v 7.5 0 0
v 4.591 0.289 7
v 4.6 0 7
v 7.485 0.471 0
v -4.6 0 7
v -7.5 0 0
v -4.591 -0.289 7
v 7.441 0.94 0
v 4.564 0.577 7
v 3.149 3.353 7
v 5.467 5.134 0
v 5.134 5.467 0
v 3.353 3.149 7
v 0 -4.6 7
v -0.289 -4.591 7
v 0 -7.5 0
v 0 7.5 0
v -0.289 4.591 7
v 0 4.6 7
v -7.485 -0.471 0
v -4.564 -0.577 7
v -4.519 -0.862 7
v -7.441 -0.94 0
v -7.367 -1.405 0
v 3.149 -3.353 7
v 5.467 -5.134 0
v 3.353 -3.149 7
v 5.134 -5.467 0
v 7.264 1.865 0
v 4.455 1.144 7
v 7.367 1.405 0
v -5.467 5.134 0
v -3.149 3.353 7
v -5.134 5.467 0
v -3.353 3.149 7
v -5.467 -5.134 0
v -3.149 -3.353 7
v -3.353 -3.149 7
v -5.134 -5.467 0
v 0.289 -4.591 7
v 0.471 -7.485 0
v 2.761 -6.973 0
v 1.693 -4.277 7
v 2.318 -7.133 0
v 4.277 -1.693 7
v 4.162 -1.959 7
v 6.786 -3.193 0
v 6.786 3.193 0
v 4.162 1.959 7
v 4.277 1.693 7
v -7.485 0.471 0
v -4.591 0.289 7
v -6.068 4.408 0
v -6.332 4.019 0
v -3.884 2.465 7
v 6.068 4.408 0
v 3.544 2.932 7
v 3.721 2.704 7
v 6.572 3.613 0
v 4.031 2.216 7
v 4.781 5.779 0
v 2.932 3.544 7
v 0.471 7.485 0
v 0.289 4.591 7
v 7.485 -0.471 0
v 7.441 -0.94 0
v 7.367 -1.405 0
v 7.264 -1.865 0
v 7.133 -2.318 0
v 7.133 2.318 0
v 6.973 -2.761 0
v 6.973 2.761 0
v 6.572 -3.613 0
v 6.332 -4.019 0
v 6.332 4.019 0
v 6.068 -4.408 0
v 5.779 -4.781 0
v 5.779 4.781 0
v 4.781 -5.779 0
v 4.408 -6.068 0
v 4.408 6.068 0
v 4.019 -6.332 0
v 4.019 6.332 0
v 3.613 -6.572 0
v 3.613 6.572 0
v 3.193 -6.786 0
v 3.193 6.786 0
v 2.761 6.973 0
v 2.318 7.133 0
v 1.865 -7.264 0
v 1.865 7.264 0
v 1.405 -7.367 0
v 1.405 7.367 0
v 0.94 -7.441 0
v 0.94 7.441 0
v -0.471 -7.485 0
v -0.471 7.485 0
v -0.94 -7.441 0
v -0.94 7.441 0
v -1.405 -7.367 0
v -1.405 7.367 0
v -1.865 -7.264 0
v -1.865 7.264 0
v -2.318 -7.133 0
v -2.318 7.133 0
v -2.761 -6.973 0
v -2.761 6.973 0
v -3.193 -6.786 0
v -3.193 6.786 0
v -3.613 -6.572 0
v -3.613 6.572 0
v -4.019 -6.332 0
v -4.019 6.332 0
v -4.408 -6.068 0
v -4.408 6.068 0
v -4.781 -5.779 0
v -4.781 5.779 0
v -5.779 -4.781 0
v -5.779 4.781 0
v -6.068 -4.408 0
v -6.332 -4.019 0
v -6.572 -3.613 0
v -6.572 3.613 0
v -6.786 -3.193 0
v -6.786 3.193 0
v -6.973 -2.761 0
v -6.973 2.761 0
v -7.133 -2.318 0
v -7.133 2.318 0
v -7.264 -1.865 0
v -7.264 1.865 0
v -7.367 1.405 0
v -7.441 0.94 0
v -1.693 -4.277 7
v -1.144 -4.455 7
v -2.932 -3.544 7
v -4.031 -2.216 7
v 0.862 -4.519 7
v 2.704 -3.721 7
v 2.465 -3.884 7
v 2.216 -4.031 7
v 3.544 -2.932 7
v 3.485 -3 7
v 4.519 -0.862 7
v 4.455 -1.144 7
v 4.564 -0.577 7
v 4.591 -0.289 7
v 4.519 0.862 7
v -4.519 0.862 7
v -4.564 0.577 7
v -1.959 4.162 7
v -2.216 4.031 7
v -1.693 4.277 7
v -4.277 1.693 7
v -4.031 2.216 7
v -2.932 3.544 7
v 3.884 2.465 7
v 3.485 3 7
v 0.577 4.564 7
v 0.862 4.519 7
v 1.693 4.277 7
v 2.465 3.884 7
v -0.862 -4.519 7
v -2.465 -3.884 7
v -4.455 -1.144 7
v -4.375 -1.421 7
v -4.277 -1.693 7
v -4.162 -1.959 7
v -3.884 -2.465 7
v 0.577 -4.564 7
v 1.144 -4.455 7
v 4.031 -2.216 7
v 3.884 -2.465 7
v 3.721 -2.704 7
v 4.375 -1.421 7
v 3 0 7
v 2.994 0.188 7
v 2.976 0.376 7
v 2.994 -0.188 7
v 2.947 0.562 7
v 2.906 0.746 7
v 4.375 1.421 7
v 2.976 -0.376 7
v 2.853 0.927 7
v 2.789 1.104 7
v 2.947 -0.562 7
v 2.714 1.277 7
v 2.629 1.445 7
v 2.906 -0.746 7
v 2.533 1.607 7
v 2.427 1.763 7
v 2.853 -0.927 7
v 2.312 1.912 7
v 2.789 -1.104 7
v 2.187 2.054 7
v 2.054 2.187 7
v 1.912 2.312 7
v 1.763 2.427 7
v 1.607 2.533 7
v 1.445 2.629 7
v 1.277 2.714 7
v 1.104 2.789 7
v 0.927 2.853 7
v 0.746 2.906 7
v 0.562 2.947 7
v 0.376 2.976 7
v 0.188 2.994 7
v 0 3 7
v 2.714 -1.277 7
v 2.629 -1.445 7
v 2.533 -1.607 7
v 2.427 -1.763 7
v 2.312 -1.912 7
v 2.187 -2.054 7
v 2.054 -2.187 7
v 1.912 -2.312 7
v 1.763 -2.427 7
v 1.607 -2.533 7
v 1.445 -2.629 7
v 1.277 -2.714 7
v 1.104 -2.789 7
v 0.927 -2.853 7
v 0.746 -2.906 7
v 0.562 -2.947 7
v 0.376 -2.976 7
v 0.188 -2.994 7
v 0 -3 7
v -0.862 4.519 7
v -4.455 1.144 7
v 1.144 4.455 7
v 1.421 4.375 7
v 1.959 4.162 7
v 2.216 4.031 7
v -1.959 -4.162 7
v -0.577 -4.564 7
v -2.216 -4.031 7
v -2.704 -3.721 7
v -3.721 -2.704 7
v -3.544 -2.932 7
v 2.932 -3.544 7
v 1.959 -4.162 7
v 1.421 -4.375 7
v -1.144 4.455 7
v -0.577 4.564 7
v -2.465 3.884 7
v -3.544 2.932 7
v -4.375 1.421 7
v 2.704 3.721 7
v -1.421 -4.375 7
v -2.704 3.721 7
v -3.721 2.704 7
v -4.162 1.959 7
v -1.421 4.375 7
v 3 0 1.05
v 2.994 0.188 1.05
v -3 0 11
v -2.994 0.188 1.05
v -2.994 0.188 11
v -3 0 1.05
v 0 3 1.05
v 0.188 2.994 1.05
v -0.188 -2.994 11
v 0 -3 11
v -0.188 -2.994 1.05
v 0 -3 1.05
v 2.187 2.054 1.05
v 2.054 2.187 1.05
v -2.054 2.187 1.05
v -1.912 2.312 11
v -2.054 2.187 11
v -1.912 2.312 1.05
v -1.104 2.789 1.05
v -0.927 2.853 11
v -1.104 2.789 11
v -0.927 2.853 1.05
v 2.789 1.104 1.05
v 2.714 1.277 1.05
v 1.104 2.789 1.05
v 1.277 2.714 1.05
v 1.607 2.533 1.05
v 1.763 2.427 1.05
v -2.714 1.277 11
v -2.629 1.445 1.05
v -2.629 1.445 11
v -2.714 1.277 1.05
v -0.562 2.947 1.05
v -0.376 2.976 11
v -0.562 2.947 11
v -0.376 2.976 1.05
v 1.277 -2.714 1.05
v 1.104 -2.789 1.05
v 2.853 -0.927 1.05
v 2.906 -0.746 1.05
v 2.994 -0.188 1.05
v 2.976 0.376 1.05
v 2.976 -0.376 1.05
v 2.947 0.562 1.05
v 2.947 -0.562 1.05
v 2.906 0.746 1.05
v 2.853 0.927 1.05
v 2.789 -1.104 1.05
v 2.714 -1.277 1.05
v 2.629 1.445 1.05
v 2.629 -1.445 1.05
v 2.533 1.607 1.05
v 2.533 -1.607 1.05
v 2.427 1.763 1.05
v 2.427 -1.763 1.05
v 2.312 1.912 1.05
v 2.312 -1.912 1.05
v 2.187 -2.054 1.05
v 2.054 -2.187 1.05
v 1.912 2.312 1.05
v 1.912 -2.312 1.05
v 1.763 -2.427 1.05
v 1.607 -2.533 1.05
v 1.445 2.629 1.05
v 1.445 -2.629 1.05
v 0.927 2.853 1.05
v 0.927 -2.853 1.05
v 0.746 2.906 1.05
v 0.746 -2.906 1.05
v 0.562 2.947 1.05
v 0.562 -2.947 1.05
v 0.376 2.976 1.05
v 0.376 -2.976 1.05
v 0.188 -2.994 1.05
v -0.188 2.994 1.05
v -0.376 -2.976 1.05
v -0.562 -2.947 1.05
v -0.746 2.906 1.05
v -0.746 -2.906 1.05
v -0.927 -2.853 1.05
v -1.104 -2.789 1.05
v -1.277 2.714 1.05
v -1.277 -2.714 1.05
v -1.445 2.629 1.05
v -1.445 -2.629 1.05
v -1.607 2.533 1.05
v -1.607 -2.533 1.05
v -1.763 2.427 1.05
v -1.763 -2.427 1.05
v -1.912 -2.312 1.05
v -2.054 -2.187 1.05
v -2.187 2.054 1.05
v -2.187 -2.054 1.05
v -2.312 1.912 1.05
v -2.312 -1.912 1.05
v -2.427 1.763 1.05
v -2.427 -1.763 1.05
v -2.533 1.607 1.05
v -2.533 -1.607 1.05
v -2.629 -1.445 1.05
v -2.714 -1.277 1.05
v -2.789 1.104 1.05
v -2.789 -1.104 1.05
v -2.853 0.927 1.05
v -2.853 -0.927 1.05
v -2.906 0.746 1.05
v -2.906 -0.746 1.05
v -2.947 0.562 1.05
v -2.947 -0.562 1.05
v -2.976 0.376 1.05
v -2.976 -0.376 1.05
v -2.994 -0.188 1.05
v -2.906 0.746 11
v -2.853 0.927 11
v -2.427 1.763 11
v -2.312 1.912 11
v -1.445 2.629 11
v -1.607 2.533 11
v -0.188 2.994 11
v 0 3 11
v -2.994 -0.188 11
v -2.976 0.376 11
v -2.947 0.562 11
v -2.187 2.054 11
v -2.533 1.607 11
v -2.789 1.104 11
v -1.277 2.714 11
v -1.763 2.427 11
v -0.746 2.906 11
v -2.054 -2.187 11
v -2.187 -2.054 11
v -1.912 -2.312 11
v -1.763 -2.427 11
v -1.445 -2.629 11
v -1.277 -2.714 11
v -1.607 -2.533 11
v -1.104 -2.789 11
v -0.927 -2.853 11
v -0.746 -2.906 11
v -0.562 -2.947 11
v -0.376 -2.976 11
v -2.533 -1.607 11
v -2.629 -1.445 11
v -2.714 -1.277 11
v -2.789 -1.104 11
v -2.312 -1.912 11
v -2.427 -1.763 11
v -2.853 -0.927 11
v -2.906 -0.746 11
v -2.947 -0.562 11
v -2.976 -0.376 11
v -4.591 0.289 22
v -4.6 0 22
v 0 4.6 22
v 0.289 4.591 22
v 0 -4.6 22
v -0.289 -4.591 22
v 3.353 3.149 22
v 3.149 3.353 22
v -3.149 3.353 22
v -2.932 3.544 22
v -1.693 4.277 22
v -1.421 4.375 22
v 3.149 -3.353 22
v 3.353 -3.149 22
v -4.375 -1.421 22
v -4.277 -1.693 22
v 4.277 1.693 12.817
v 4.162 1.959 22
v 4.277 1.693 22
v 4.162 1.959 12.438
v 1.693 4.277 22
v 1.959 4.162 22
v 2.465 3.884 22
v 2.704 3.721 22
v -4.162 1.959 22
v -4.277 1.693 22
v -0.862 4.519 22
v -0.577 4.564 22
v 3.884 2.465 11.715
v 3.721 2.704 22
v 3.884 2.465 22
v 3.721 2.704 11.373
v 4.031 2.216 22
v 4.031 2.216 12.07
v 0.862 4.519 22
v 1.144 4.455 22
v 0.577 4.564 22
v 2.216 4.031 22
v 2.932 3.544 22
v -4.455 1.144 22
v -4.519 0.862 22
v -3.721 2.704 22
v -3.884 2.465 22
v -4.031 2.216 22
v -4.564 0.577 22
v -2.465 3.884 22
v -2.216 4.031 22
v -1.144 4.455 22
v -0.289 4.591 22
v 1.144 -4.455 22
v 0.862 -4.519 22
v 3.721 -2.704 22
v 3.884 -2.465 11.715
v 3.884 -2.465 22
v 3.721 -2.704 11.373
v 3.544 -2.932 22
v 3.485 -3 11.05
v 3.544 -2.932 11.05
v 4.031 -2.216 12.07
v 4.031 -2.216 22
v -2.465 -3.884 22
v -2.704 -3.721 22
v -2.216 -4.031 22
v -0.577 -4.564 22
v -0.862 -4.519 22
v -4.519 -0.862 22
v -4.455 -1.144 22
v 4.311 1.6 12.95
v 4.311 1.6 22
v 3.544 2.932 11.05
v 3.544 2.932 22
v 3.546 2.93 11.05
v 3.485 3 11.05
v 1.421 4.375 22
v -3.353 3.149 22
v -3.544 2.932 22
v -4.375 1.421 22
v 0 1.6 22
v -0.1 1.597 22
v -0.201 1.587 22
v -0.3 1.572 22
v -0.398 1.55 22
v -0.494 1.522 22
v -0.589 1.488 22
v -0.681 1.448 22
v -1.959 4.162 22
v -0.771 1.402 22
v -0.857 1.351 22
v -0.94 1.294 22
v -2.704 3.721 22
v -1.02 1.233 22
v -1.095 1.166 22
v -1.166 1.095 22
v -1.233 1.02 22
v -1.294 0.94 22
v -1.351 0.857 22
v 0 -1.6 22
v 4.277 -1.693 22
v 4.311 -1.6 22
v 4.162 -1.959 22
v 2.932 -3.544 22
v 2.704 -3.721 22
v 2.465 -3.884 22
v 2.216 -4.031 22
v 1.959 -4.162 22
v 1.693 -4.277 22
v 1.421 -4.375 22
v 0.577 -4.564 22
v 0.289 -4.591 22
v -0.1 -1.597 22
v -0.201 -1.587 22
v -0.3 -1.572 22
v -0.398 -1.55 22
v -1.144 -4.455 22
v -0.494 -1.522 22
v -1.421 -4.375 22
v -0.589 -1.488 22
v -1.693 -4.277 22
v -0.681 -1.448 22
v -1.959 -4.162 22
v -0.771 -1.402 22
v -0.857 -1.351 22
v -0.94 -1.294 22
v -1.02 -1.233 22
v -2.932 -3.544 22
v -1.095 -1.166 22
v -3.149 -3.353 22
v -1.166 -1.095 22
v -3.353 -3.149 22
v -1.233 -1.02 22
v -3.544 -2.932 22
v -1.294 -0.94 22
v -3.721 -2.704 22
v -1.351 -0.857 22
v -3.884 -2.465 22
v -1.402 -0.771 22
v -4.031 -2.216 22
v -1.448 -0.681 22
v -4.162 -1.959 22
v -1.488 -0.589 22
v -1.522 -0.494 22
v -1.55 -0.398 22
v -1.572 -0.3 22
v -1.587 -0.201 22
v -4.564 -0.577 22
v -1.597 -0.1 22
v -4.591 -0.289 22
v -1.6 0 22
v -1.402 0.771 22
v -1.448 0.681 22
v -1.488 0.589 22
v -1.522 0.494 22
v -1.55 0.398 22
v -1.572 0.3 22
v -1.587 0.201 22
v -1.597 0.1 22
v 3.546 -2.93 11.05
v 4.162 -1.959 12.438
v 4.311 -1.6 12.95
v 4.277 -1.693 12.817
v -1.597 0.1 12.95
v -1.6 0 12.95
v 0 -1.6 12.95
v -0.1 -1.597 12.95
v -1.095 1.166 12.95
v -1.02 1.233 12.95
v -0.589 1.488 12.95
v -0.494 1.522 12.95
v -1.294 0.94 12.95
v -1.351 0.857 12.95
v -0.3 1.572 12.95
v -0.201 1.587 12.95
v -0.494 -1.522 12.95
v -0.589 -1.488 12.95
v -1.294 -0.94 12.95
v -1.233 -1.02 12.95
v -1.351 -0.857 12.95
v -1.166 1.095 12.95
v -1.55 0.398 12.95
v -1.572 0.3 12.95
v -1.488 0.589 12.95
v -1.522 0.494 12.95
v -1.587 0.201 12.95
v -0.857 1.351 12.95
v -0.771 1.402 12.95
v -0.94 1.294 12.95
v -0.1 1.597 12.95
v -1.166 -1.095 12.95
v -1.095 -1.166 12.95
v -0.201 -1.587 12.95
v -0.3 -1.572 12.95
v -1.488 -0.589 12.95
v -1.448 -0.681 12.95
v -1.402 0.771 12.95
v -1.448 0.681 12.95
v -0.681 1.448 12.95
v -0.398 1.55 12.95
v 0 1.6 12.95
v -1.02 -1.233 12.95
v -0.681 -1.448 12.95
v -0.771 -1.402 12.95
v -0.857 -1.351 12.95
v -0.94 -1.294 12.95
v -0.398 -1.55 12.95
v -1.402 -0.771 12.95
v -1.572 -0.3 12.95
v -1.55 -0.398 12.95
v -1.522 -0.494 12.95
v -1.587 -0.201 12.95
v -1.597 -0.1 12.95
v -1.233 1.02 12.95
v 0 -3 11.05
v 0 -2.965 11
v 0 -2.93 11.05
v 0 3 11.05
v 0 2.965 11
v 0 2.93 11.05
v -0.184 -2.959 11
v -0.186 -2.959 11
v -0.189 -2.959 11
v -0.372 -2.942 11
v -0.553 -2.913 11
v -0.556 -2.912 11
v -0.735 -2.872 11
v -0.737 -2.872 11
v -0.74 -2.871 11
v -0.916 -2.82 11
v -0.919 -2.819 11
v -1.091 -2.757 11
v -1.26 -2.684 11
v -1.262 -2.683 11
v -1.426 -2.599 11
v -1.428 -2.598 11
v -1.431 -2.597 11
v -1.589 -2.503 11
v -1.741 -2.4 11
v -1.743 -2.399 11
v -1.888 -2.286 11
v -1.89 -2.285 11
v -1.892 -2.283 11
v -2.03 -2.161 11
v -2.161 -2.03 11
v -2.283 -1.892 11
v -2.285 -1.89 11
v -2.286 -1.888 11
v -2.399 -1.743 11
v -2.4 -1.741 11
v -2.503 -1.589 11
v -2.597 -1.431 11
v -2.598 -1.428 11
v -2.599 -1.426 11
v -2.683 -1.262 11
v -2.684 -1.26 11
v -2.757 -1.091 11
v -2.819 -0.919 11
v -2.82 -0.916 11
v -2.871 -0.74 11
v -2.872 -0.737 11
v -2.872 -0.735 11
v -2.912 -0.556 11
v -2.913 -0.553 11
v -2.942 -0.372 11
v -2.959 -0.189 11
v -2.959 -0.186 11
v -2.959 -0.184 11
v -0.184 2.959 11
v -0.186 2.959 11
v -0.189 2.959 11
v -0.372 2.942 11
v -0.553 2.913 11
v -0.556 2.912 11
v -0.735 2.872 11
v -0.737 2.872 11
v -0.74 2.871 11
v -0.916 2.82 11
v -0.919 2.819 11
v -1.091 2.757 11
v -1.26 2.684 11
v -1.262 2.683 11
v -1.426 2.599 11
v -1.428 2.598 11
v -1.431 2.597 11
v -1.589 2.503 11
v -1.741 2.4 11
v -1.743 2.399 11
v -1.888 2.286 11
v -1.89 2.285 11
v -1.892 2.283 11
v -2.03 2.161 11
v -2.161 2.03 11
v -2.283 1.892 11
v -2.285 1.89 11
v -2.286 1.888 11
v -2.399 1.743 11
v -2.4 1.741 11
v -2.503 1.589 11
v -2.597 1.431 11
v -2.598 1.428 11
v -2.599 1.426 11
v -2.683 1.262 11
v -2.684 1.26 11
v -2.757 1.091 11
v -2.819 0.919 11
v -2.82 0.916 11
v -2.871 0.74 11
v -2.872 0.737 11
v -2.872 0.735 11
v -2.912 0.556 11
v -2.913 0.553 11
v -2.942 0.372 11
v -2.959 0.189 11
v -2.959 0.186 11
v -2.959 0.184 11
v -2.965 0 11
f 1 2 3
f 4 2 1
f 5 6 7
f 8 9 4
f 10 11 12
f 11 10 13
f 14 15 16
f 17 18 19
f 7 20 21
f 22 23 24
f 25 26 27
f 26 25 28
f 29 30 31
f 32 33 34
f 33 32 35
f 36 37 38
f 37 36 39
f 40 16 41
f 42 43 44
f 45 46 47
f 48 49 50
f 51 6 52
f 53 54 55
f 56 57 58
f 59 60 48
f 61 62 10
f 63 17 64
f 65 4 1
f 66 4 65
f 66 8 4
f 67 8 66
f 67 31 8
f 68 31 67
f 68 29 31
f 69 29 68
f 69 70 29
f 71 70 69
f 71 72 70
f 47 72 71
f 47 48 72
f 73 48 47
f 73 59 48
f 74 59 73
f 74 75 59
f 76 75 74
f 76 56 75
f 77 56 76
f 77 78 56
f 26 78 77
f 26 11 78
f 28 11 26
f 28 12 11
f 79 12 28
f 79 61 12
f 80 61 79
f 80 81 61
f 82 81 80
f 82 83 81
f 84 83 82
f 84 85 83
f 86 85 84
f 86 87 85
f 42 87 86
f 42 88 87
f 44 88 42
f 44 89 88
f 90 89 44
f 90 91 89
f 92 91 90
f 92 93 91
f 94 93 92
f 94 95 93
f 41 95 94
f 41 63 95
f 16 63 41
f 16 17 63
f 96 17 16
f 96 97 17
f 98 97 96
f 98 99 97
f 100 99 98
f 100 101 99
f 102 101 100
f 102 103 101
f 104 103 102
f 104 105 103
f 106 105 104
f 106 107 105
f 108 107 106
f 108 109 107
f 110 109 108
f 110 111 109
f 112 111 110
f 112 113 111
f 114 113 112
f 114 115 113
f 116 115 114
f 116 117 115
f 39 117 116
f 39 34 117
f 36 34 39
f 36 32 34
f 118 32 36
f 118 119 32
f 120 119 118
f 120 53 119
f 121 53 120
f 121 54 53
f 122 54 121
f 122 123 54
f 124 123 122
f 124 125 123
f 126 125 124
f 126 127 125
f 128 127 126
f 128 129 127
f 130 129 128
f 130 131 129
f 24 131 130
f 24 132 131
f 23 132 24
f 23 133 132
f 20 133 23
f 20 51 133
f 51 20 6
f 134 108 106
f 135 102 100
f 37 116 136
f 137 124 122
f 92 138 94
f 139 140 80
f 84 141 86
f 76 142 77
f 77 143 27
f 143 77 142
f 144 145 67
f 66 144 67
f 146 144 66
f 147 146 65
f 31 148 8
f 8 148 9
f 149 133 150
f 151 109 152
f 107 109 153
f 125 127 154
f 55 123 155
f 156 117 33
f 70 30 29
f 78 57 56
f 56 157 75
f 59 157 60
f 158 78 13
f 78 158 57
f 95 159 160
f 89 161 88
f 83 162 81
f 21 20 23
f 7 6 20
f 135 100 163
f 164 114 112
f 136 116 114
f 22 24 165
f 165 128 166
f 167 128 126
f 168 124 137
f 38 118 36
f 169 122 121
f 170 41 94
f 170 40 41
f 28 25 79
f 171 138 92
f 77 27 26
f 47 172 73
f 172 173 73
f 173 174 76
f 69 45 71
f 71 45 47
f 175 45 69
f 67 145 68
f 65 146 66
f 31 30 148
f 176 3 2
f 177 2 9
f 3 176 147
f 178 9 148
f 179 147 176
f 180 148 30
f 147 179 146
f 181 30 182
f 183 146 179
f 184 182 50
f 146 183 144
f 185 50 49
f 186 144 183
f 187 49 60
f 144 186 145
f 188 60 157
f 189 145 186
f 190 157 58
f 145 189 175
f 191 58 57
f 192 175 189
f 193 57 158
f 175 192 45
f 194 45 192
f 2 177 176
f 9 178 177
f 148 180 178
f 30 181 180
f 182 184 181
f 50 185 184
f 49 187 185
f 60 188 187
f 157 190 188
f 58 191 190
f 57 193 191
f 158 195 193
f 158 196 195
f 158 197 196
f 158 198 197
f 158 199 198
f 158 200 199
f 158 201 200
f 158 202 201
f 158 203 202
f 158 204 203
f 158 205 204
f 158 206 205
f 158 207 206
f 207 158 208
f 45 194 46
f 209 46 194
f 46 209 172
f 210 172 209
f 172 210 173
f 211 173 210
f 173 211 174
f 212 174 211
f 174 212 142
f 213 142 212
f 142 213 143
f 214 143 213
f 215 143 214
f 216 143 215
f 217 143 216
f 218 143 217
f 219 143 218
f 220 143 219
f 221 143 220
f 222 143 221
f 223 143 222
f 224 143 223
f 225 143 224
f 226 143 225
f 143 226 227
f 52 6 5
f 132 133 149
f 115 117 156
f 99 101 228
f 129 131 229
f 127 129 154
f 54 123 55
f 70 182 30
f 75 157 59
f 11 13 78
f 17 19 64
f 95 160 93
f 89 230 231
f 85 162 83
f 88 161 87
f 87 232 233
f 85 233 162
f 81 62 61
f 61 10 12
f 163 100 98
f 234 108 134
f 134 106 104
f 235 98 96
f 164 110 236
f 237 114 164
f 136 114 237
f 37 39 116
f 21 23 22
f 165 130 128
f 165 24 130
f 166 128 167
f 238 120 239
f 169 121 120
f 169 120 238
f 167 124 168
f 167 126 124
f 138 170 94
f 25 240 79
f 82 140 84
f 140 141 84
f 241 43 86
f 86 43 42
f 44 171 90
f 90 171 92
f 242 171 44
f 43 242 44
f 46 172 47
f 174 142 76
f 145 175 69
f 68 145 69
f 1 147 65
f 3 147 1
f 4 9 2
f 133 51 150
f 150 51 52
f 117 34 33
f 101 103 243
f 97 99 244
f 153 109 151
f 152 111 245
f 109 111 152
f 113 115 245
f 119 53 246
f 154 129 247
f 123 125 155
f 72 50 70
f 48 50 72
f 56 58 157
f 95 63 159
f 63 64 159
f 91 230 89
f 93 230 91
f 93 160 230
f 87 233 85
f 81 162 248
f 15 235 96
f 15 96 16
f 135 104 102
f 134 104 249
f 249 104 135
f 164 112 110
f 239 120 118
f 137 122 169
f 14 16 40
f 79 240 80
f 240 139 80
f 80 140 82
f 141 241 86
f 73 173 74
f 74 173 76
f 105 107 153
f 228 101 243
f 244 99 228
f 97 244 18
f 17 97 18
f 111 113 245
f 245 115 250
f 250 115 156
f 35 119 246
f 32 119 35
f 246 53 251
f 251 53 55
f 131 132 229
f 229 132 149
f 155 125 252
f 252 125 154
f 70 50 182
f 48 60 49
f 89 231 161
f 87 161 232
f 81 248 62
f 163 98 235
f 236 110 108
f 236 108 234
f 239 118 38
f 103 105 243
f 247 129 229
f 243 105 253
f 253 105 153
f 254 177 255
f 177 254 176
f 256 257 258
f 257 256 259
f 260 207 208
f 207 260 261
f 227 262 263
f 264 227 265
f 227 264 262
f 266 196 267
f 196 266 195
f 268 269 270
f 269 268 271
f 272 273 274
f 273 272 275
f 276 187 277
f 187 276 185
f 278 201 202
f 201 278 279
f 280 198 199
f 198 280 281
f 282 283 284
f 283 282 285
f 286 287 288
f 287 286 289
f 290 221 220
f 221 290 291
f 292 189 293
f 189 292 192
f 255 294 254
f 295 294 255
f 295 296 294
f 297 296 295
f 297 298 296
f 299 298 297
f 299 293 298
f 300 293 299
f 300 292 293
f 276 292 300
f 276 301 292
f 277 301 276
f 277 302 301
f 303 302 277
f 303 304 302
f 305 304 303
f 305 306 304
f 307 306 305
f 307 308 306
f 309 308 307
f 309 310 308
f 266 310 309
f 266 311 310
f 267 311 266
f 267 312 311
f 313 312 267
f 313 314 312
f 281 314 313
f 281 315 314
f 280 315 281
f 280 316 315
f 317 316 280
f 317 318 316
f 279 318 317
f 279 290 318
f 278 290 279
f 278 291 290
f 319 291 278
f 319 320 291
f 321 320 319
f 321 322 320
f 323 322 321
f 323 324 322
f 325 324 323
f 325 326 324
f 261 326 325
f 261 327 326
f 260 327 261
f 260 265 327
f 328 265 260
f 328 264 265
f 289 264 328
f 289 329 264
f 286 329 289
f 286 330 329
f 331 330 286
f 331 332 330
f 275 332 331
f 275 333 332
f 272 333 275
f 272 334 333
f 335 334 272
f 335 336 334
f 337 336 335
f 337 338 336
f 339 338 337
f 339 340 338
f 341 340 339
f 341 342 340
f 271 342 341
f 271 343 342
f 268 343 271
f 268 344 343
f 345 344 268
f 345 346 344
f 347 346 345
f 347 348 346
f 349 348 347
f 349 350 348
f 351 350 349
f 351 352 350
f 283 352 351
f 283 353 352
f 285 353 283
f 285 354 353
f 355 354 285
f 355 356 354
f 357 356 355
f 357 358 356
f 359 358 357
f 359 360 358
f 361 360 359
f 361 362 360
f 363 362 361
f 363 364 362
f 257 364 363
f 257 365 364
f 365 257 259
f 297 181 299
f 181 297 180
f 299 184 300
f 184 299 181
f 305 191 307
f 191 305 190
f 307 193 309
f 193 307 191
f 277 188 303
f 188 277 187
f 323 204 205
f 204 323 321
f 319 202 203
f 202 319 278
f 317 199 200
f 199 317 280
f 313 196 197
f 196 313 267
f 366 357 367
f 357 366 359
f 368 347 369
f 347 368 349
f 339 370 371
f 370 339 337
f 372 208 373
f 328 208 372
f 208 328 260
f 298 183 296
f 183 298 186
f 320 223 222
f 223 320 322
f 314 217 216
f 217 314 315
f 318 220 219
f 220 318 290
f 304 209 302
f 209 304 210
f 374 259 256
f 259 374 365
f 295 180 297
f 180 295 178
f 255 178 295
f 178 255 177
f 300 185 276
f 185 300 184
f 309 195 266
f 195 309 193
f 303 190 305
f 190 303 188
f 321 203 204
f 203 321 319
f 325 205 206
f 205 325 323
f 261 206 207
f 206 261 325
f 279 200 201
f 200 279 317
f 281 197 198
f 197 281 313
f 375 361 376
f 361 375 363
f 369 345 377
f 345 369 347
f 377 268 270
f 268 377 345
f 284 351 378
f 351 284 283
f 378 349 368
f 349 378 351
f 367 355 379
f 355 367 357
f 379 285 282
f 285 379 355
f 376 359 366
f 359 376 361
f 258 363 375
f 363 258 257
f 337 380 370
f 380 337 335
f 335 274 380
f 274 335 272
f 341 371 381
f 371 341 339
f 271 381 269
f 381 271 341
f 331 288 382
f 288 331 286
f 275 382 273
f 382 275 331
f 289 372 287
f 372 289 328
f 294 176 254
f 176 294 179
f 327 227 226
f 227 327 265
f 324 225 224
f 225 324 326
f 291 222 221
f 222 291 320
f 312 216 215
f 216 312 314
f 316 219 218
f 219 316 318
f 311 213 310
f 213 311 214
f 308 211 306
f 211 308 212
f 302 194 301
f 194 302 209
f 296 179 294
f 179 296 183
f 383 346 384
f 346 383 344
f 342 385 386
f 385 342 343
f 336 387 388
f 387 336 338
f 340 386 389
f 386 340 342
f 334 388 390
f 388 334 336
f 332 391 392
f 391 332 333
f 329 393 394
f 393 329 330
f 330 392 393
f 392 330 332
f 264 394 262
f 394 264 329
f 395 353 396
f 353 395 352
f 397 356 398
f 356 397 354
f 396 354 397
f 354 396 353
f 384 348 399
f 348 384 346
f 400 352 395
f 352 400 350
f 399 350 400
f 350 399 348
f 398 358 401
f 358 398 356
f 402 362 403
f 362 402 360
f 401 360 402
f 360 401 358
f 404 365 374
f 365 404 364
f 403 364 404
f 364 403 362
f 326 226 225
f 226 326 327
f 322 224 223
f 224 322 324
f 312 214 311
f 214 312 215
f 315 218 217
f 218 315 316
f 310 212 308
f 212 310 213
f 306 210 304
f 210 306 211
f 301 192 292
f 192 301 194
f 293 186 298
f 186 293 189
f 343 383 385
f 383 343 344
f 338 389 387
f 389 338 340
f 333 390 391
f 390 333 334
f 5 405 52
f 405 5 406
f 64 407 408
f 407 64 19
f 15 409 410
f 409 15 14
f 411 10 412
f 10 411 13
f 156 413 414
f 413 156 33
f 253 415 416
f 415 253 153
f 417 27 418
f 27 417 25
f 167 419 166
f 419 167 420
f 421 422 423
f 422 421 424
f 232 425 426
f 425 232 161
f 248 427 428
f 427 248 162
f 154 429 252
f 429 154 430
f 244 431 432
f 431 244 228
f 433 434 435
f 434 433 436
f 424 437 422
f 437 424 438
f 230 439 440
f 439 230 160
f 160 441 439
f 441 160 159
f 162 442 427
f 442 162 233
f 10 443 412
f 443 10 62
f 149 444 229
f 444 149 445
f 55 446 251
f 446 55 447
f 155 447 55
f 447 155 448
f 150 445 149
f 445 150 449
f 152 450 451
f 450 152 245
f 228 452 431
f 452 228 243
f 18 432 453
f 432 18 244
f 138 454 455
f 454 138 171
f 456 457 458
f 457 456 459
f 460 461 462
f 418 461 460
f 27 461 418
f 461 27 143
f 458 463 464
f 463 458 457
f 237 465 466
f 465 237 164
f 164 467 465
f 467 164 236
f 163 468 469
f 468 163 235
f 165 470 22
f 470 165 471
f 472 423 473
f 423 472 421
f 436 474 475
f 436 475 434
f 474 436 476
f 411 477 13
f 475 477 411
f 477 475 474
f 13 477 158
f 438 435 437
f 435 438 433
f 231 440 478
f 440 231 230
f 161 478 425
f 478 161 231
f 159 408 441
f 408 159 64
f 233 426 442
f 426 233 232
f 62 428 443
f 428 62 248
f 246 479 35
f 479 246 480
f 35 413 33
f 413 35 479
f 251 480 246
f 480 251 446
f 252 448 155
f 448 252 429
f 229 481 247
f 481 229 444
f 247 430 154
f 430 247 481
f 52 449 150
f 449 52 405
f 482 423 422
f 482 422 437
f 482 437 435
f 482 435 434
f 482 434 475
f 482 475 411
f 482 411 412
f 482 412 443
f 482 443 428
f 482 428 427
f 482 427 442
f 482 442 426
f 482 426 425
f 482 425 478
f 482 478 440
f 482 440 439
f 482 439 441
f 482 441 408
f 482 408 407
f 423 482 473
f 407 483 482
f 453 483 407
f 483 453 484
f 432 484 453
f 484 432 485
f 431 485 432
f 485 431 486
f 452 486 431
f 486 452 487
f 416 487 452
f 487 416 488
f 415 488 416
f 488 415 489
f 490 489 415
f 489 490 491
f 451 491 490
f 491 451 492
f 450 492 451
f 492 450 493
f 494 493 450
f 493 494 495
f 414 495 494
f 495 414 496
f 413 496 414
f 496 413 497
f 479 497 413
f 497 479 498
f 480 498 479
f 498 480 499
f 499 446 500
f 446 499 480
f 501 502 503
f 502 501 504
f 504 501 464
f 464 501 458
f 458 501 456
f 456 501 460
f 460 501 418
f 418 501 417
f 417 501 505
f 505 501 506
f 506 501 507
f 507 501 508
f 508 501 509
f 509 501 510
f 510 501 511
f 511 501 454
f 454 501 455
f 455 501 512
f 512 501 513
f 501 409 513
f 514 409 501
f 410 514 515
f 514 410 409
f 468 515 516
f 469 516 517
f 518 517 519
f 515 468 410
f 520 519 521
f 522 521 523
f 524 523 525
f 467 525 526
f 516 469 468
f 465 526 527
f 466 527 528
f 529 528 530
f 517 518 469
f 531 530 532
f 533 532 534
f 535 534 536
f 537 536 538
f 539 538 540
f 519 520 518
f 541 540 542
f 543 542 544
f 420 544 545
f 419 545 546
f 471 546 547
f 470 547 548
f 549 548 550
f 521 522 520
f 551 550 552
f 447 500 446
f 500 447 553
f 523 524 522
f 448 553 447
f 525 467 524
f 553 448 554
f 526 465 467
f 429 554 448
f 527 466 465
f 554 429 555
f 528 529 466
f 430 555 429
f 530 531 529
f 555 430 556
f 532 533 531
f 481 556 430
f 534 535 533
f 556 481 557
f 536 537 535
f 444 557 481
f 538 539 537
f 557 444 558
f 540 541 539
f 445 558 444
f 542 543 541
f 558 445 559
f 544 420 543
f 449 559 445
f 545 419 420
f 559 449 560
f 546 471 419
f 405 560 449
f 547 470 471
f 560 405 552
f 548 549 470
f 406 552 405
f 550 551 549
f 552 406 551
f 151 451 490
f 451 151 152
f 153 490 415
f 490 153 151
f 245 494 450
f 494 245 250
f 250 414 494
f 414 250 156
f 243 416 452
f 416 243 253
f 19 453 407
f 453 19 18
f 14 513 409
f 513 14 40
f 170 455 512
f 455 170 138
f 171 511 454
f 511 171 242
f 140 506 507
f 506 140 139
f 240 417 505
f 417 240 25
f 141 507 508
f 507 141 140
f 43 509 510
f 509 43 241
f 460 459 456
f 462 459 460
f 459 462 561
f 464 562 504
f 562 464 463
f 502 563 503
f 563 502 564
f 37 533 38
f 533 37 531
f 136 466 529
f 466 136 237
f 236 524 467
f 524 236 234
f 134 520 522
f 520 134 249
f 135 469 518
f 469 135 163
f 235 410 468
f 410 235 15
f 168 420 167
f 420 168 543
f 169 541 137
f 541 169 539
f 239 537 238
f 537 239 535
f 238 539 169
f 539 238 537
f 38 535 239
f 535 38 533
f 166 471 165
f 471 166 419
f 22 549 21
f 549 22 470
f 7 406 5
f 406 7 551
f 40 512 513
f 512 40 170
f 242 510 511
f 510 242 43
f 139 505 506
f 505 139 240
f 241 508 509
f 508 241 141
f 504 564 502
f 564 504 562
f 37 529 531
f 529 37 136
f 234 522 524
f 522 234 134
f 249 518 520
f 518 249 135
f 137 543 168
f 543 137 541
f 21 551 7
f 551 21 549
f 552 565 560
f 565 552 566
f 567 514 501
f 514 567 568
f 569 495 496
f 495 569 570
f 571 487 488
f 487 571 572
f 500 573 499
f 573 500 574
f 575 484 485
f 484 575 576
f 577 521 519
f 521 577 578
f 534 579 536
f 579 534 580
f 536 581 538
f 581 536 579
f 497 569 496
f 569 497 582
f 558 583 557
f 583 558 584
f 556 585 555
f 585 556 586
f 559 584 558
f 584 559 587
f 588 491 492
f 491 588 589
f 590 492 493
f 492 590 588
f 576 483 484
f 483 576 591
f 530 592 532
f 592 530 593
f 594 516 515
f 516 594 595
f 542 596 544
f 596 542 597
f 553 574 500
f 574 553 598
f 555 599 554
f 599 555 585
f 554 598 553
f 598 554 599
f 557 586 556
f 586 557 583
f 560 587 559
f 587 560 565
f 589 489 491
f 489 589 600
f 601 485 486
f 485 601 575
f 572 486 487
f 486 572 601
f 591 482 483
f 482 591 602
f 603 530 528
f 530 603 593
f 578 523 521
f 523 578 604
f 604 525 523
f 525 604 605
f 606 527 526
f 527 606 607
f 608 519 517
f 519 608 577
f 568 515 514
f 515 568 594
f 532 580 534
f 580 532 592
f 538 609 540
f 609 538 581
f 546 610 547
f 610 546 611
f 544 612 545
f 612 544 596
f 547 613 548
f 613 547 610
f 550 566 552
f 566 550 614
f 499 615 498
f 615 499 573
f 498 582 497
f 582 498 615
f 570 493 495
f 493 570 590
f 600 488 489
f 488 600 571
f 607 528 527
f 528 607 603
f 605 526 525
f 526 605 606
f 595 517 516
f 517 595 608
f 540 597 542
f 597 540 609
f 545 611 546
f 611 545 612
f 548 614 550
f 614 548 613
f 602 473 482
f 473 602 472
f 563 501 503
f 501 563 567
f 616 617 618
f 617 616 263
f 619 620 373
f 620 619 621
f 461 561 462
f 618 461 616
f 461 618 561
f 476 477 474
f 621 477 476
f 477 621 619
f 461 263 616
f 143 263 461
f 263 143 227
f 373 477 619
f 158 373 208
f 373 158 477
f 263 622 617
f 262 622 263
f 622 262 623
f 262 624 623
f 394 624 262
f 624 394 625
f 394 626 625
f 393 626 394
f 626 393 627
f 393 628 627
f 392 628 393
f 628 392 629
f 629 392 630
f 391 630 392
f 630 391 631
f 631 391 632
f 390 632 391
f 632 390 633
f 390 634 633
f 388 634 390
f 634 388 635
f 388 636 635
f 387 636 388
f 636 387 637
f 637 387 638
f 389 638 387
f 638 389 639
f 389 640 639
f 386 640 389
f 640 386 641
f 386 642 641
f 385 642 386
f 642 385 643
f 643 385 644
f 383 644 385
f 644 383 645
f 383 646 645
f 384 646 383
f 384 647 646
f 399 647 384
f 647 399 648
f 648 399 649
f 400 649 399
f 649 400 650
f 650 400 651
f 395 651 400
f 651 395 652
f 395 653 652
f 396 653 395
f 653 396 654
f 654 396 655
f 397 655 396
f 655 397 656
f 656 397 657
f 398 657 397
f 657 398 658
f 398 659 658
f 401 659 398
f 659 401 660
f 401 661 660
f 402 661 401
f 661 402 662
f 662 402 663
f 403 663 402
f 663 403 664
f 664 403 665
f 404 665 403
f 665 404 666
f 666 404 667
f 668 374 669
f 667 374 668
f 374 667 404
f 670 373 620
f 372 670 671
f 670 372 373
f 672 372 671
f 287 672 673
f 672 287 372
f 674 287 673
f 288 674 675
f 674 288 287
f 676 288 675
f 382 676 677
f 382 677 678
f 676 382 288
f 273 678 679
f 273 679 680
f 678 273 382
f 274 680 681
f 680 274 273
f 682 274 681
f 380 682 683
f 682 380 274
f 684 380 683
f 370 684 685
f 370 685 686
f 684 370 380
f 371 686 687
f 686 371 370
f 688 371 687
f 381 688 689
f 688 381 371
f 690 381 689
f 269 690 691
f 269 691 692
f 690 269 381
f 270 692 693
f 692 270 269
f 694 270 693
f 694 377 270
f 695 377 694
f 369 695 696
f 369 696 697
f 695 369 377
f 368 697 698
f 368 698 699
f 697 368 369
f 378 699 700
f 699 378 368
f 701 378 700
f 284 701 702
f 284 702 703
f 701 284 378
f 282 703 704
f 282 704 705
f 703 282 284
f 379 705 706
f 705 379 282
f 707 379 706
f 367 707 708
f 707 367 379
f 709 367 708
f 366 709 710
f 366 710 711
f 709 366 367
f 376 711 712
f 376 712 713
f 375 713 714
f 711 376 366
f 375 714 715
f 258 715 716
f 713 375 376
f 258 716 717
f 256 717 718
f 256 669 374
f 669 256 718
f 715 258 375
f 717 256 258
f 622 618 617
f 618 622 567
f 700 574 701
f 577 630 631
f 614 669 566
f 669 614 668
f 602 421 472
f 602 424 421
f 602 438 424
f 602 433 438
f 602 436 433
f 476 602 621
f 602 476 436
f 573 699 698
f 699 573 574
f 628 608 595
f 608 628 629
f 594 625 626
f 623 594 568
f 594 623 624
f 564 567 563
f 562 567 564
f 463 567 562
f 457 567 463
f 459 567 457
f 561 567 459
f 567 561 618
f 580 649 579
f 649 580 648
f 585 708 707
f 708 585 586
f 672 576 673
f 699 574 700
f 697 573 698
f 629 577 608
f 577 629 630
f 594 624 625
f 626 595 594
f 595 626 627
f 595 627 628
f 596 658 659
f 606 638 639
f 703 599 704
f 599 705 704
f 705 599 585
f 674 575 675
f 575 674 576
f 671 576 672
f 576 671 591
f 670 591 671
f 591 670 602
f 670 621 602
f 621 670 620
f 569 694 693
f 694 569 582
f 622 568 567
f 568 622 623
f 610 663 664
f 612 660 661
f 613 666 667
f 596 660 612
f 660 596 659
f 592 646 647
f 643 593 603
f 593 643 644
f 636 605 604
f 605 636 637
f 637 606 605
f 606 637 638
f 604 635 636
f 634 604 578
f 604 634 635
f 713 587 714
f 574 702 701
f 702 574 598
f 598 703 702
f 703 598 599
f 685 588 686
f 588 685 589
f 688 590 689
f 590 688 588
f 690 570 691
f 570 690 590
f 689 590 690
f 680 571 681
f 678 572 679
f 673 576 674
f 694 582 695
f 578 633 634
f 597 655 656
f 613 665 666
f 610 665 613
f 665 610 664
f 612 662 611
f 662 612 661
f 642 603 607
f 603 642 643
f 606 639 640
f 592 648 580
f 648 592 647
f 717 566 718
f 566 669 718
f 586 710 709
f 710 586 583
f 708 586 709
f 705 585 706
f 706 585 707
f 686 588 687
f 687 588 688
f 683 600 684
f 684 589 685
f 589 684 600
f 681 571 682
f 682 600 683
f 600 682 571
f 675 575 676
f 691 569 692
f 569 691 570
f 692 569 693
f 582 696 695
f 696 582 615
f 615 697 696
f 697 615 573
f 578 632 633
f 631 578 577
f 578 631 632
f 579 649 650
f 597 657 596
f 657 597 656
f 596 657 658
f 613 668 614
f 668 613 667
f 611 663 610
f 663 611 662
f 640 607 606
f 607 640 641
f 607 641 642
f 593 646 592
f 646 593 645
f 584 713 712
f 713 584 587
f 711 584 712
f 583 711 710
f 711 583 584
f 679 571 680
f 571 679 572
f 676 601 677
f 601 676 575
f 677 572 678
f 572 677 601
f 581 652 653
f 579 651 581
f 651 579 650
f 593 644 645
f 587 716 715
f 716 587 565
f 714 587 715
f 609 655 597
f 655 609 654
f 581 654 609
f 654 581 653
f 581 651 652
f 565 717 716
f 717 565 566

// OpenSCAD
tete_diam_ext=15;
tete_diam_int=6;
tete_hauteur=7;

corps_diam_int=3.2;
corps_hauteur=15;
corps_epaisseur=3;

encoche_hauteur=4.0;

epaisseur=1;

artefact=0.05;
module tete() {
    difference() {
        cylinder(h=tete_hauteur,d1=tete_diam_ext,d2=corps_diam_int+2*corps_epaisseur,$fn=100);
        hauteur_interieur=tete_hauteur-epaisseur+artefact;
        translate([0,0,epaisseur+artefact])
            cylinder(h=hauteur_interieur,d=tete_diam_int,$fn=100);
    }
}

module corps(){
    corps_diam_ext=corps_diam_int+2*corps_epaisseur;
    tete_encoche=tete_diam_int;
    corps_encoche=corps_diam_int;
    difference(){
        difference(){ //corps
            cylinder(h=corps_hauteur,d=corps_diam_ext,$fn=100);
            translate([0,0,-artefact])
                cylinder(h=corps_hauteur+2*artefact,d=corps_diam_int,$fn=100);
        }
        translate([corps_encoche,0,corps_hauteur/2+artefact]) //encoche corps vis
            cube([2*corps_encoche,corps_encoche,corps_hauteur+2*artefact],center=true);
        translate([tete_encoche,0,encoche_hauteur/2]) //encoche tete vis
            cube([2*tete_encoche,tete_encoche,encoche_hauteur+2*artefact],center=true);
        translate([0,0,-artefact]) //Trou pour la tete
            cylinder(h=encoche_hauteur+artefact,d=tete_diam_int,$fn=100);
        hull() { //Chanfrein
            translate([0,0,encoche_hauteur/2+2-artefact])
                cylinder(h=2,d1=tete_diam_int,d2=corps_diam_int,$fn=100);
            diam1=2*sqrt((tete_encoche*tete_encoche)/2);
            diam2=2*sqrt((corps_diam_int*corps_diam_int)/2);
            translate([diam2,0,encoche_hauteur/2+2-artefact]) rotate([0,0,45]) 
                cylinder(h=2,d1=diam1,d2=diam2,$fn=4);
        }
    }
}

tete();

translate([0,0,tete_hauteur])
    corps();
